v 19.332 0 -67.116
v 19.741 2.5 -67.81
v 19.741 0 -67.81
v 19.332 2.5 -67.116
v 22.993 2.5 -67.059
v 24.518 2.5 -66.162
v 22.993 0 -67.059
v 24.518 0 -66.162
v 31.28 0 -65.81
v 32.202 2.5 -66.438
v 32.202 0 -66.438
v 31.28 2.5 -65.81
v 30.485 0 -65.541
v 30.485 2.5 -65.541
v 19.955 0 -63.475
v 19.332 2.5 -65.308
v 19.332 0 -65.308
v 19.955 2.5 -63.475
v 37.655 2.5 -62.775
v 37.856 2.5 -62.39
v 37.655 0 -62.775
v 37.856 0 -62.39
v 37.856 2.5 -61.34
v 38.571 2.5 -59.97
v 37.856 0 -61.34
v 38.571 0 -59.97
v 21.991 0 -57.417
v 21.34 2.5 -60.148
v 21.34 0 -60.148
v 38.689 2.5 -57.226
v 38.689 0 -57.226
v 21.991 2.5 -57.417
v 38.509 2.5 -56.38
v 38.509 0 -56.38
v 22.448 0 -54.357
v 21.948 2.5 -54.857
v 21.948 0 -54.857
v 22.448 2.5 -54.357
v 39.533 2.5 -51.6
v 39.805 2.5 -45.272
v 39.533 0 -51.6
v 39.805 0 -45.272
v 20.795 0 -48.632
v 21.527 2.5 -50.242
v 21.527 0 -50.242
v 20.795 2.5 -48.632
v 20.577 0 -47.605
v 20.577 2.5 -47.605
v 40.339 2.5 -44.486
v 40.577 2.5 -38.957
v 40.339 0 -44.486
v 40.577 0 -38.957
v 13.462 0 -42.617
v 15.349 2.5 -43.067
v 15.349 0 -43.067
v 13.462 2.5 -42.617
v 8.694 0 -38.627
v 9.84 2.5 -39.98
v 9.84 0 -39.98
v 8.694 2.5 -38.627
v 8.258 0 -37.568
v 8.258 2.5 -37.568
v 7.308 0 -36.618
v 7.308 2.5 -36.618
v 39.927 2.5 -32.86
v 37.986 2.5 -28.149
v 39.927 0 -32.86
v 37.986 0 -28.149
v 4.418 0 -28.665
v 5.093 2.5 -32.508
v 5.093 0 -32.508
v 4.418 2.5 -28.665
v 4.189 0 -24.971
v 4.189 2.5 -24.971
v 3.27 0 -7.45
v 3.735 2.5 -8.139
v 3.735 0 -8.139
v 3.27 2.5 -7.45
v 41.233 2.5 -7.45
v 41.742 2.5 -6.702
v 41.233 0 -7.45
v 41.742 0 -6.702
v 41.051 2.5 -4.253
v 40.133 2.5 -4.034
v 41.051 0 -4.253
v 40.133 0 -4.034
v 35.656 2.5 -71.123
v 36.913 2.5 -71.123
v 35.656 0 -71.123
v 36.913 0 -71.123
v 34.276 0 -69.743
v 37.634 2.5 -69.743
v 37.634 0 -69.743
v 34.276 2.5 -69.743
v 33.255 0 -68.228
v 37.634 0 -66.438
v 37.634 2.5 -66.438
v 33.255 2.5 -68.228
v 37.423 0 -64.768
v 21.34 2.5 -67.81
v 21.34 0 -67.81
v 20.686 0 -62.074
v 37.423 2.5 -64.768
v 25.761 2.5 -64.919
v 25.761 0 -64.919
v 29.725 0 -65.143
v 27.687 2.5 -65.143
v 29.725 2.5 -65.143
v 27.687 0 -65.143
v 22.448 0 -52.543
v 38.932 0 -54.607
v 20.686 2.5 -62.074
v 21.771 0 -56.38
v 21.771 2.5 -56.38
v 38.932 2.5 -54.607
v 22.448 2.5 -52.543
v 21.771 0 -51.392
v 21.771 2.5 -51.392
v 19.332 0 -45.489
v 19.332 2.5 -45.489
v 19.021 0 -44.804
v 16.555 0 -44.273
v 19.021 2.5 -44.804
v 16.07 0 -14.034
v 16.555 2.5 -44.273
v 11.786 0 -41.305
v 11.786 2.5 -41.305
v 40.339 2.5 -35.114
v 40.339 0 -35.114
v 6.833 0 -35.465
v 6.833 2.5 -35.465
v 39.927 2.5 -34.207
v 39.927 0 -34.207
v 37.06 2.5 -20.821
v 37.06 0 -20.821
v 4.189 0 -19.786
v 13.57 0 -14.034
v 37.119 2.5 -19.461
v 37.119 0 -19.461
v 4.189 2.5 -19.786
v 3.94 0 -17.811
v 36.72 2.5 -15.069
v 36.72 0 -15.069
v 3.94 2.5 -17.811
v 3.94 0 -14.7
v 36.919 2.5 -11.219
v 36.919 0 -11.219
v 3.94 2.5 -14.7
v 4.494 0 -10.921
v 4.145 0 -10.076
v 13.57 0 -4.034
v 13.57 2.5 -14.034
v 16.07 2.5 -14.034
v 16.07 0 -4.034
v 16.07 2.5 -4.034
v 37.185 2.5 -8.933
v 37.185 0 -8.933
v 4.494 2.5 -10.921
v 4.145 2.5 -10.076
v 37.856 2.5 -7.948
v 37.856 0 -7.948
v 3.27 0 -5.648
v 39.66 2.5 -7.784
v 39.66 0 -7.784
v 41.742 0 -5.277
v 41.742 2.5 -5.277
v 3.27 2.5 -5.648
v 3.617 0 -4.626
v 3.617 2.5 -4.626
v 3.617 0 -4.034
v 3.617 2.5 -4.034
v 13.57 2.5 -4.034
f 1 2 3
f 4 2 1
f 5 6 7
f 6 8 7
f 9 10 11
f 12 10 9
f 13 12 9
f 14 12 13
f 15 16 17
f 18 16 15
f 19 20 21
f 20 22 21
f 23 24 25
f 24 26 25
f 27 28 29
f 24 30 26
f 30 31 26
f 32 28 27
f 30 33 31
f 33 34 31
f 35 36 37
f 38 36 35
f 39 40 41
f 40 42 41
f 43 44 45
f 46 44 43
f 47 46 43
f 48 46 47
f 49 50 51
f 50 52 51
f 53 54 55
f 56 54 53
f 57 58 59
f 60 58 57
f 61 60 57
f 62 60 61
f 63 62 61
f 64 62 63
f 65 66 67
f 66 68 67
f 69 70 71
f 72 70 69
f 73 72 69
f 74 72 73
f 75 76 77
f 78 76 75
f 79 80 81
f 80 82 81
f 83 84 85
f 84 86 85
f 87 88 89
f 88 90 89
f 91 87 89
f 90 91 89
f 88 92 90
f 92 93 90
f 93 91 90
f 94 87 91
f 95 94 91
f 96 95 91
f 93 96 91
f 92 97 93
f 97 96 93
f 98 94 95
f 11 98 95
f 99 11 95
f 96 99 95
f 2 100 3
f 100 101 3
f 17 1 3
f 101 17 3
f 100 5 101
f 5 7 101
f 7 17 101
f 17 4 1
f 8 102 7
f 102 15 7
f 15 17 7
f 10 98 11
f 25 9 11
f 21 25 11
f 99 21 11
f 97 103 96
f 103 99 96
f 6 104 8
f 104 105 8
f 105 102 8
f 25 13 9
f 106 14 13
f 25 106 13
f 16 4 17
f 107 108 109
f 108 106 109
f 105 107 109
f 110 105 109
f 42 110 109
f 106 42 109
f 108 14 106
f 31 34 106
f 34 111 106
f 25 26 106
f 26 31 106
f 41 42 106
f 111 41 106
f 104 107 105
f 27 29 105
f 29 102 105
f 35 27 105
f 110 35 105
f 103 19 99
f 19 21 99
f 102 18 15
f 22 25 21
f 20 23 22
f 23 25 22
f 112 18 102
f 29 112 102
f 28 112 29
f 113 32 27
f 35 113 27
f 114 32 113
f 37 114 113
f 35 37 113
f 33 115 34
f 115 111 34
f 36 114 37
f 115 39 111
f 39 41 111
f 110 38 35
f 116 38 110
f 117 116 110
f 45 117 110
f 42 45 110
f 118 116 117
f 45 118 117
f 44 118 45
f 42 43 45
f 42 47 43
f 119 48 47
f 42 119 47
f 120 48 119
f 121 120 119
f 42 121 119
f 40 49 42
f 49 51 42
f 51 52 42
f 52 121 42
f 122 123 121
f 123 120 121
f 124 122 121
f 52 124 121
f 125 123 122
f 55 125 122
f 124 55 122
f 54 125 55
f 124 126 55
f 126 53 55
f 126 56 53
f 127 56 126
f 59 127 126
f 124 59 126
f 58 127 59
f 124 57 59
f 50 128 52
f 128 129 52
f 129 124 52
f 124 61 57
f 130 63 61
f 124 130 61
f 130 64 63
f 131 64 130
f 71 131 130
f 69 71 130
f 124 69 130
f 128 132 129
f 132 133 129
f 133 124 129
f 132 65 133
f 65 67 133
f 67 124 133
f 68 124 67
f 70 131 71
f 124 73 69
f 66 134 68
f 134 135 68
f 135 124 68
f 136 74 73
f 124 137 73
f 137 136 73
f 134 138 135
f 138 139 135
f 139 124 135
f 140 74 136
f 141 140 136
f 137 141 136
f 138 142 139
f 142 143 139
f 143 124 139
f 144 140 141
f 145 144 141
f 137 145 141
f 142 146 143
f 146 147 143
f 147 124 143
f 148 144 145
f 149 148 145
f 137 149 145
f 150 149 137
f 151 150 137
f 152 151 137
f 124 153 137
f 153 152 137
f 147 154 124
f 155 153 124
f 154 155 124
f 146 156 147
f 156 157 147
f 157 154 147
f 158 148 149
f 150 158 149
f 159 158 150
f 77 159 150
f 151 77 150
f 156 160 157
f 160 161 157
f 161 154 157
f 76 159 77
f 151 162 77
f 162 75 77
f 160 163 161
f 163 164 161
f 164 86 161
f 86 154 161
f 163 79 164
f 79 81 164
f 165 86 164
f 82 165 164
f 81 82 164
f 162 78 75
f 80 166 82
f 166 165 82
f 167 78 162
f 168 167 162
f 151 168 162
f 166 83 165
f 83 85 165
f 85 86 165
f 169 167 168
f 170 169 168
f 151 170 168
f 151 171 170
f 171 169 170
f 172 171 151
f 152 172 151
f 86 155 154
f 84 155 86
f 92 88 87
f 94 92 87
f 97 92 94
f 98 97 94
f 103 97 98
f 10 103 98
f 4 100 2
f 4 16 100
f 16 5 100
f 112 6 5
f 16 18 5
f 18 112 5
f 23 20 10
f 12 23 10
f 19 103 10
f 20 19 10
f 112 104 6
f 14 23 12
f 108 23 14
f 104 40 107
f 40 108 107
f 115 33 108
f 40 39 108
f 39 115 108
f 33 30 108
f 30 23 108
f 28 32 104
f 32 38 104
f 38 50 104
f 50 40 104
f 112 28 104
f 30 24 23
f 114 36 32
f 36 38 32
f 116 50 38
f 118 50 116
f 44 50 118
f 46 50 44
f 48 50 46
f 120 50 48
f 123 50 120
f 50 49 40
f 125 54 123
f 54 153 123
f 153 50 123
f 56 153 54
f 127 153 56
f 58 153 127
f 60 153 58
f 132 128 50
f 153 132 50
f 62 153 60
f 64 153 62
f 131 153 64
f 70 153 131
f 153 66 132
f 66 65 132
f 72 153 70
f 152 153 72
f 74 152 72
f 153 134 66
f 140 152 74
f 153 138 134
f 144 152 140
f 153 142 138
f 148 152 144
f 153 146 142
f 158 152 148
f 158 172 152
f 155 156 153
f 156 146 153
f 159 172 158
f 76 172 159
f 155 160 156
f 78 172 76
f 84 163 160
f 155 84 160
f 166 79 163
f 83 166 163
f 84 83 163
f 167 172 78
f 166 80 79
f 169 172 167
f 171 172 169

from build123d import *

# Parameters (mm, degrees)
BOSS_EXTRUDE1_DEPTH = 2.5
SKETCH2_W           = 2.5
SKETCH2_H           = 2.5
CUT_EXTRUDE1_DEPTH  = 10


with BuildPart() as part:
    # Sketch1 → Boss-Extrude1 (new body)
    with BuildSketch(Plane(origin=(0, 0, 0), x_dir=(1, 0, 0), z_dir=(0, 1, 0))):
        Polygon((19.021261999, 44.804158017), (19.332438403, 45.488746105), (20.577144018, 47.604745652), (20.794967501, 48.631627785), (21.527084588, 50.242285376), (21.770981653, 51.392085822), (22.447946599, 52.542926231), (22.447946599, 54.357273616), (21.948192274, 54.857027941), (21.770981653, 56.379920241), (21.990995409, 57.417127949), (21.770981653, 58.340331586), (21.340284184, 60.1475889), (20.68605576, 62.074448432), (19.954791211, 63.47474225), (19.332438403, 65.307720452), (19.332438403, 67.115506175), (19.741207407, 67.810413481), (21.340284184, 67.810413481), (22.992716517, 67.059307875), (24.51836959, 66.161864891), (25.760939094, 64.919295387), (27.687055742, 65.143427014), (29.724933341, 65.143427014), (30.485439327, 65.540580139), (31.279820672, 65.810297182), (32.201793055, 66.437748451), (33.254785535, 68.227835667), (34.276233434, 69.742789054), (35.243443216, 70.709998836), (35.656263686, 71.122819306), (36.913233915, 71.122819306), (37.63391638, 69.742789054), (37.63391638, 66.437748451), (37.423054008, 64.767648146), (37.654974628, 62.774595341), (37.855798717, 62.390038575), (37.855798717, 61.339547521), (38.570896495, 59.97021135), (38.688814239, 57.225826771), (38.50937952, 56.379920241), (38.931857999, 54.607150778), (39.532654393, 51.600225744), (39.660205894, 48.631627785), (39.804568301, 45.271777514), (40.33944819, 44.485828851), (40.577016369, 38.956733507), (40.33944819, 35.114073385), (39.92710204, 34.206911855), (39.92710204, 32.859942326), (37.98561411, 28.148501466), (37.060494228, 20.821243477), (37.11895116, 19.460733181), (36.71985388, 15.068979081), (36.91940252, 11.218958378), (37.185464562, 8.932504932), (37.855798717, 7.947520745), (39.660205894, 7.783546628), (41.232731094, 7.449980677), (41.741559995, 6.702311148), (41.741559995, 5.276917294), (41.050907419, 4.252580704), (40.133275115, 4.033894683), (3.616707841, 4.033894683), (3.616707841, 4.626457176), (3.269950211, 5.647741518), (3.269950211, 6.261397474), (3.269950211, 7.449980677), (3.734735993, 8.139324495), (4.145489026, 10.075731655), (4.493765097, 10.920898955), (3.940112509, 14.699799013), (3.940112509, 17.811459581), (4.189387556, 19.785801077), (4.189387556, 24.971460981), (4.417715683, 28.664663454), (5.09342811, 32.508342262), (6.832899379, 35.465443418), (7.307908954, 36.618157008), (8.257829647, 37.568077701), (8.694357753, 38.627407672), (9.840028976, 39.979843625), (11.786481729, 41.304508301), (13.461509637, 42.616844106), (15.348517574, 43.066547386), (16.554775804, 44.272805615), align=None)
    extrude(amount=BOSS_EXTRUDE1_DEPTH)

    # Sketch2 → Cut-Extrude1 (cut)
    with BuildSketch(Plane.XY.offset(-4.033894683)):
        with Locations((14.819950211, 1.25)):
            Rectangle(SKETCH2_W, SKETCH2_H)
    extrude(amount=-CUT_EXTRUDE1_DEPTH, mode=Mode.SUBTRACT)


solid = part.part
